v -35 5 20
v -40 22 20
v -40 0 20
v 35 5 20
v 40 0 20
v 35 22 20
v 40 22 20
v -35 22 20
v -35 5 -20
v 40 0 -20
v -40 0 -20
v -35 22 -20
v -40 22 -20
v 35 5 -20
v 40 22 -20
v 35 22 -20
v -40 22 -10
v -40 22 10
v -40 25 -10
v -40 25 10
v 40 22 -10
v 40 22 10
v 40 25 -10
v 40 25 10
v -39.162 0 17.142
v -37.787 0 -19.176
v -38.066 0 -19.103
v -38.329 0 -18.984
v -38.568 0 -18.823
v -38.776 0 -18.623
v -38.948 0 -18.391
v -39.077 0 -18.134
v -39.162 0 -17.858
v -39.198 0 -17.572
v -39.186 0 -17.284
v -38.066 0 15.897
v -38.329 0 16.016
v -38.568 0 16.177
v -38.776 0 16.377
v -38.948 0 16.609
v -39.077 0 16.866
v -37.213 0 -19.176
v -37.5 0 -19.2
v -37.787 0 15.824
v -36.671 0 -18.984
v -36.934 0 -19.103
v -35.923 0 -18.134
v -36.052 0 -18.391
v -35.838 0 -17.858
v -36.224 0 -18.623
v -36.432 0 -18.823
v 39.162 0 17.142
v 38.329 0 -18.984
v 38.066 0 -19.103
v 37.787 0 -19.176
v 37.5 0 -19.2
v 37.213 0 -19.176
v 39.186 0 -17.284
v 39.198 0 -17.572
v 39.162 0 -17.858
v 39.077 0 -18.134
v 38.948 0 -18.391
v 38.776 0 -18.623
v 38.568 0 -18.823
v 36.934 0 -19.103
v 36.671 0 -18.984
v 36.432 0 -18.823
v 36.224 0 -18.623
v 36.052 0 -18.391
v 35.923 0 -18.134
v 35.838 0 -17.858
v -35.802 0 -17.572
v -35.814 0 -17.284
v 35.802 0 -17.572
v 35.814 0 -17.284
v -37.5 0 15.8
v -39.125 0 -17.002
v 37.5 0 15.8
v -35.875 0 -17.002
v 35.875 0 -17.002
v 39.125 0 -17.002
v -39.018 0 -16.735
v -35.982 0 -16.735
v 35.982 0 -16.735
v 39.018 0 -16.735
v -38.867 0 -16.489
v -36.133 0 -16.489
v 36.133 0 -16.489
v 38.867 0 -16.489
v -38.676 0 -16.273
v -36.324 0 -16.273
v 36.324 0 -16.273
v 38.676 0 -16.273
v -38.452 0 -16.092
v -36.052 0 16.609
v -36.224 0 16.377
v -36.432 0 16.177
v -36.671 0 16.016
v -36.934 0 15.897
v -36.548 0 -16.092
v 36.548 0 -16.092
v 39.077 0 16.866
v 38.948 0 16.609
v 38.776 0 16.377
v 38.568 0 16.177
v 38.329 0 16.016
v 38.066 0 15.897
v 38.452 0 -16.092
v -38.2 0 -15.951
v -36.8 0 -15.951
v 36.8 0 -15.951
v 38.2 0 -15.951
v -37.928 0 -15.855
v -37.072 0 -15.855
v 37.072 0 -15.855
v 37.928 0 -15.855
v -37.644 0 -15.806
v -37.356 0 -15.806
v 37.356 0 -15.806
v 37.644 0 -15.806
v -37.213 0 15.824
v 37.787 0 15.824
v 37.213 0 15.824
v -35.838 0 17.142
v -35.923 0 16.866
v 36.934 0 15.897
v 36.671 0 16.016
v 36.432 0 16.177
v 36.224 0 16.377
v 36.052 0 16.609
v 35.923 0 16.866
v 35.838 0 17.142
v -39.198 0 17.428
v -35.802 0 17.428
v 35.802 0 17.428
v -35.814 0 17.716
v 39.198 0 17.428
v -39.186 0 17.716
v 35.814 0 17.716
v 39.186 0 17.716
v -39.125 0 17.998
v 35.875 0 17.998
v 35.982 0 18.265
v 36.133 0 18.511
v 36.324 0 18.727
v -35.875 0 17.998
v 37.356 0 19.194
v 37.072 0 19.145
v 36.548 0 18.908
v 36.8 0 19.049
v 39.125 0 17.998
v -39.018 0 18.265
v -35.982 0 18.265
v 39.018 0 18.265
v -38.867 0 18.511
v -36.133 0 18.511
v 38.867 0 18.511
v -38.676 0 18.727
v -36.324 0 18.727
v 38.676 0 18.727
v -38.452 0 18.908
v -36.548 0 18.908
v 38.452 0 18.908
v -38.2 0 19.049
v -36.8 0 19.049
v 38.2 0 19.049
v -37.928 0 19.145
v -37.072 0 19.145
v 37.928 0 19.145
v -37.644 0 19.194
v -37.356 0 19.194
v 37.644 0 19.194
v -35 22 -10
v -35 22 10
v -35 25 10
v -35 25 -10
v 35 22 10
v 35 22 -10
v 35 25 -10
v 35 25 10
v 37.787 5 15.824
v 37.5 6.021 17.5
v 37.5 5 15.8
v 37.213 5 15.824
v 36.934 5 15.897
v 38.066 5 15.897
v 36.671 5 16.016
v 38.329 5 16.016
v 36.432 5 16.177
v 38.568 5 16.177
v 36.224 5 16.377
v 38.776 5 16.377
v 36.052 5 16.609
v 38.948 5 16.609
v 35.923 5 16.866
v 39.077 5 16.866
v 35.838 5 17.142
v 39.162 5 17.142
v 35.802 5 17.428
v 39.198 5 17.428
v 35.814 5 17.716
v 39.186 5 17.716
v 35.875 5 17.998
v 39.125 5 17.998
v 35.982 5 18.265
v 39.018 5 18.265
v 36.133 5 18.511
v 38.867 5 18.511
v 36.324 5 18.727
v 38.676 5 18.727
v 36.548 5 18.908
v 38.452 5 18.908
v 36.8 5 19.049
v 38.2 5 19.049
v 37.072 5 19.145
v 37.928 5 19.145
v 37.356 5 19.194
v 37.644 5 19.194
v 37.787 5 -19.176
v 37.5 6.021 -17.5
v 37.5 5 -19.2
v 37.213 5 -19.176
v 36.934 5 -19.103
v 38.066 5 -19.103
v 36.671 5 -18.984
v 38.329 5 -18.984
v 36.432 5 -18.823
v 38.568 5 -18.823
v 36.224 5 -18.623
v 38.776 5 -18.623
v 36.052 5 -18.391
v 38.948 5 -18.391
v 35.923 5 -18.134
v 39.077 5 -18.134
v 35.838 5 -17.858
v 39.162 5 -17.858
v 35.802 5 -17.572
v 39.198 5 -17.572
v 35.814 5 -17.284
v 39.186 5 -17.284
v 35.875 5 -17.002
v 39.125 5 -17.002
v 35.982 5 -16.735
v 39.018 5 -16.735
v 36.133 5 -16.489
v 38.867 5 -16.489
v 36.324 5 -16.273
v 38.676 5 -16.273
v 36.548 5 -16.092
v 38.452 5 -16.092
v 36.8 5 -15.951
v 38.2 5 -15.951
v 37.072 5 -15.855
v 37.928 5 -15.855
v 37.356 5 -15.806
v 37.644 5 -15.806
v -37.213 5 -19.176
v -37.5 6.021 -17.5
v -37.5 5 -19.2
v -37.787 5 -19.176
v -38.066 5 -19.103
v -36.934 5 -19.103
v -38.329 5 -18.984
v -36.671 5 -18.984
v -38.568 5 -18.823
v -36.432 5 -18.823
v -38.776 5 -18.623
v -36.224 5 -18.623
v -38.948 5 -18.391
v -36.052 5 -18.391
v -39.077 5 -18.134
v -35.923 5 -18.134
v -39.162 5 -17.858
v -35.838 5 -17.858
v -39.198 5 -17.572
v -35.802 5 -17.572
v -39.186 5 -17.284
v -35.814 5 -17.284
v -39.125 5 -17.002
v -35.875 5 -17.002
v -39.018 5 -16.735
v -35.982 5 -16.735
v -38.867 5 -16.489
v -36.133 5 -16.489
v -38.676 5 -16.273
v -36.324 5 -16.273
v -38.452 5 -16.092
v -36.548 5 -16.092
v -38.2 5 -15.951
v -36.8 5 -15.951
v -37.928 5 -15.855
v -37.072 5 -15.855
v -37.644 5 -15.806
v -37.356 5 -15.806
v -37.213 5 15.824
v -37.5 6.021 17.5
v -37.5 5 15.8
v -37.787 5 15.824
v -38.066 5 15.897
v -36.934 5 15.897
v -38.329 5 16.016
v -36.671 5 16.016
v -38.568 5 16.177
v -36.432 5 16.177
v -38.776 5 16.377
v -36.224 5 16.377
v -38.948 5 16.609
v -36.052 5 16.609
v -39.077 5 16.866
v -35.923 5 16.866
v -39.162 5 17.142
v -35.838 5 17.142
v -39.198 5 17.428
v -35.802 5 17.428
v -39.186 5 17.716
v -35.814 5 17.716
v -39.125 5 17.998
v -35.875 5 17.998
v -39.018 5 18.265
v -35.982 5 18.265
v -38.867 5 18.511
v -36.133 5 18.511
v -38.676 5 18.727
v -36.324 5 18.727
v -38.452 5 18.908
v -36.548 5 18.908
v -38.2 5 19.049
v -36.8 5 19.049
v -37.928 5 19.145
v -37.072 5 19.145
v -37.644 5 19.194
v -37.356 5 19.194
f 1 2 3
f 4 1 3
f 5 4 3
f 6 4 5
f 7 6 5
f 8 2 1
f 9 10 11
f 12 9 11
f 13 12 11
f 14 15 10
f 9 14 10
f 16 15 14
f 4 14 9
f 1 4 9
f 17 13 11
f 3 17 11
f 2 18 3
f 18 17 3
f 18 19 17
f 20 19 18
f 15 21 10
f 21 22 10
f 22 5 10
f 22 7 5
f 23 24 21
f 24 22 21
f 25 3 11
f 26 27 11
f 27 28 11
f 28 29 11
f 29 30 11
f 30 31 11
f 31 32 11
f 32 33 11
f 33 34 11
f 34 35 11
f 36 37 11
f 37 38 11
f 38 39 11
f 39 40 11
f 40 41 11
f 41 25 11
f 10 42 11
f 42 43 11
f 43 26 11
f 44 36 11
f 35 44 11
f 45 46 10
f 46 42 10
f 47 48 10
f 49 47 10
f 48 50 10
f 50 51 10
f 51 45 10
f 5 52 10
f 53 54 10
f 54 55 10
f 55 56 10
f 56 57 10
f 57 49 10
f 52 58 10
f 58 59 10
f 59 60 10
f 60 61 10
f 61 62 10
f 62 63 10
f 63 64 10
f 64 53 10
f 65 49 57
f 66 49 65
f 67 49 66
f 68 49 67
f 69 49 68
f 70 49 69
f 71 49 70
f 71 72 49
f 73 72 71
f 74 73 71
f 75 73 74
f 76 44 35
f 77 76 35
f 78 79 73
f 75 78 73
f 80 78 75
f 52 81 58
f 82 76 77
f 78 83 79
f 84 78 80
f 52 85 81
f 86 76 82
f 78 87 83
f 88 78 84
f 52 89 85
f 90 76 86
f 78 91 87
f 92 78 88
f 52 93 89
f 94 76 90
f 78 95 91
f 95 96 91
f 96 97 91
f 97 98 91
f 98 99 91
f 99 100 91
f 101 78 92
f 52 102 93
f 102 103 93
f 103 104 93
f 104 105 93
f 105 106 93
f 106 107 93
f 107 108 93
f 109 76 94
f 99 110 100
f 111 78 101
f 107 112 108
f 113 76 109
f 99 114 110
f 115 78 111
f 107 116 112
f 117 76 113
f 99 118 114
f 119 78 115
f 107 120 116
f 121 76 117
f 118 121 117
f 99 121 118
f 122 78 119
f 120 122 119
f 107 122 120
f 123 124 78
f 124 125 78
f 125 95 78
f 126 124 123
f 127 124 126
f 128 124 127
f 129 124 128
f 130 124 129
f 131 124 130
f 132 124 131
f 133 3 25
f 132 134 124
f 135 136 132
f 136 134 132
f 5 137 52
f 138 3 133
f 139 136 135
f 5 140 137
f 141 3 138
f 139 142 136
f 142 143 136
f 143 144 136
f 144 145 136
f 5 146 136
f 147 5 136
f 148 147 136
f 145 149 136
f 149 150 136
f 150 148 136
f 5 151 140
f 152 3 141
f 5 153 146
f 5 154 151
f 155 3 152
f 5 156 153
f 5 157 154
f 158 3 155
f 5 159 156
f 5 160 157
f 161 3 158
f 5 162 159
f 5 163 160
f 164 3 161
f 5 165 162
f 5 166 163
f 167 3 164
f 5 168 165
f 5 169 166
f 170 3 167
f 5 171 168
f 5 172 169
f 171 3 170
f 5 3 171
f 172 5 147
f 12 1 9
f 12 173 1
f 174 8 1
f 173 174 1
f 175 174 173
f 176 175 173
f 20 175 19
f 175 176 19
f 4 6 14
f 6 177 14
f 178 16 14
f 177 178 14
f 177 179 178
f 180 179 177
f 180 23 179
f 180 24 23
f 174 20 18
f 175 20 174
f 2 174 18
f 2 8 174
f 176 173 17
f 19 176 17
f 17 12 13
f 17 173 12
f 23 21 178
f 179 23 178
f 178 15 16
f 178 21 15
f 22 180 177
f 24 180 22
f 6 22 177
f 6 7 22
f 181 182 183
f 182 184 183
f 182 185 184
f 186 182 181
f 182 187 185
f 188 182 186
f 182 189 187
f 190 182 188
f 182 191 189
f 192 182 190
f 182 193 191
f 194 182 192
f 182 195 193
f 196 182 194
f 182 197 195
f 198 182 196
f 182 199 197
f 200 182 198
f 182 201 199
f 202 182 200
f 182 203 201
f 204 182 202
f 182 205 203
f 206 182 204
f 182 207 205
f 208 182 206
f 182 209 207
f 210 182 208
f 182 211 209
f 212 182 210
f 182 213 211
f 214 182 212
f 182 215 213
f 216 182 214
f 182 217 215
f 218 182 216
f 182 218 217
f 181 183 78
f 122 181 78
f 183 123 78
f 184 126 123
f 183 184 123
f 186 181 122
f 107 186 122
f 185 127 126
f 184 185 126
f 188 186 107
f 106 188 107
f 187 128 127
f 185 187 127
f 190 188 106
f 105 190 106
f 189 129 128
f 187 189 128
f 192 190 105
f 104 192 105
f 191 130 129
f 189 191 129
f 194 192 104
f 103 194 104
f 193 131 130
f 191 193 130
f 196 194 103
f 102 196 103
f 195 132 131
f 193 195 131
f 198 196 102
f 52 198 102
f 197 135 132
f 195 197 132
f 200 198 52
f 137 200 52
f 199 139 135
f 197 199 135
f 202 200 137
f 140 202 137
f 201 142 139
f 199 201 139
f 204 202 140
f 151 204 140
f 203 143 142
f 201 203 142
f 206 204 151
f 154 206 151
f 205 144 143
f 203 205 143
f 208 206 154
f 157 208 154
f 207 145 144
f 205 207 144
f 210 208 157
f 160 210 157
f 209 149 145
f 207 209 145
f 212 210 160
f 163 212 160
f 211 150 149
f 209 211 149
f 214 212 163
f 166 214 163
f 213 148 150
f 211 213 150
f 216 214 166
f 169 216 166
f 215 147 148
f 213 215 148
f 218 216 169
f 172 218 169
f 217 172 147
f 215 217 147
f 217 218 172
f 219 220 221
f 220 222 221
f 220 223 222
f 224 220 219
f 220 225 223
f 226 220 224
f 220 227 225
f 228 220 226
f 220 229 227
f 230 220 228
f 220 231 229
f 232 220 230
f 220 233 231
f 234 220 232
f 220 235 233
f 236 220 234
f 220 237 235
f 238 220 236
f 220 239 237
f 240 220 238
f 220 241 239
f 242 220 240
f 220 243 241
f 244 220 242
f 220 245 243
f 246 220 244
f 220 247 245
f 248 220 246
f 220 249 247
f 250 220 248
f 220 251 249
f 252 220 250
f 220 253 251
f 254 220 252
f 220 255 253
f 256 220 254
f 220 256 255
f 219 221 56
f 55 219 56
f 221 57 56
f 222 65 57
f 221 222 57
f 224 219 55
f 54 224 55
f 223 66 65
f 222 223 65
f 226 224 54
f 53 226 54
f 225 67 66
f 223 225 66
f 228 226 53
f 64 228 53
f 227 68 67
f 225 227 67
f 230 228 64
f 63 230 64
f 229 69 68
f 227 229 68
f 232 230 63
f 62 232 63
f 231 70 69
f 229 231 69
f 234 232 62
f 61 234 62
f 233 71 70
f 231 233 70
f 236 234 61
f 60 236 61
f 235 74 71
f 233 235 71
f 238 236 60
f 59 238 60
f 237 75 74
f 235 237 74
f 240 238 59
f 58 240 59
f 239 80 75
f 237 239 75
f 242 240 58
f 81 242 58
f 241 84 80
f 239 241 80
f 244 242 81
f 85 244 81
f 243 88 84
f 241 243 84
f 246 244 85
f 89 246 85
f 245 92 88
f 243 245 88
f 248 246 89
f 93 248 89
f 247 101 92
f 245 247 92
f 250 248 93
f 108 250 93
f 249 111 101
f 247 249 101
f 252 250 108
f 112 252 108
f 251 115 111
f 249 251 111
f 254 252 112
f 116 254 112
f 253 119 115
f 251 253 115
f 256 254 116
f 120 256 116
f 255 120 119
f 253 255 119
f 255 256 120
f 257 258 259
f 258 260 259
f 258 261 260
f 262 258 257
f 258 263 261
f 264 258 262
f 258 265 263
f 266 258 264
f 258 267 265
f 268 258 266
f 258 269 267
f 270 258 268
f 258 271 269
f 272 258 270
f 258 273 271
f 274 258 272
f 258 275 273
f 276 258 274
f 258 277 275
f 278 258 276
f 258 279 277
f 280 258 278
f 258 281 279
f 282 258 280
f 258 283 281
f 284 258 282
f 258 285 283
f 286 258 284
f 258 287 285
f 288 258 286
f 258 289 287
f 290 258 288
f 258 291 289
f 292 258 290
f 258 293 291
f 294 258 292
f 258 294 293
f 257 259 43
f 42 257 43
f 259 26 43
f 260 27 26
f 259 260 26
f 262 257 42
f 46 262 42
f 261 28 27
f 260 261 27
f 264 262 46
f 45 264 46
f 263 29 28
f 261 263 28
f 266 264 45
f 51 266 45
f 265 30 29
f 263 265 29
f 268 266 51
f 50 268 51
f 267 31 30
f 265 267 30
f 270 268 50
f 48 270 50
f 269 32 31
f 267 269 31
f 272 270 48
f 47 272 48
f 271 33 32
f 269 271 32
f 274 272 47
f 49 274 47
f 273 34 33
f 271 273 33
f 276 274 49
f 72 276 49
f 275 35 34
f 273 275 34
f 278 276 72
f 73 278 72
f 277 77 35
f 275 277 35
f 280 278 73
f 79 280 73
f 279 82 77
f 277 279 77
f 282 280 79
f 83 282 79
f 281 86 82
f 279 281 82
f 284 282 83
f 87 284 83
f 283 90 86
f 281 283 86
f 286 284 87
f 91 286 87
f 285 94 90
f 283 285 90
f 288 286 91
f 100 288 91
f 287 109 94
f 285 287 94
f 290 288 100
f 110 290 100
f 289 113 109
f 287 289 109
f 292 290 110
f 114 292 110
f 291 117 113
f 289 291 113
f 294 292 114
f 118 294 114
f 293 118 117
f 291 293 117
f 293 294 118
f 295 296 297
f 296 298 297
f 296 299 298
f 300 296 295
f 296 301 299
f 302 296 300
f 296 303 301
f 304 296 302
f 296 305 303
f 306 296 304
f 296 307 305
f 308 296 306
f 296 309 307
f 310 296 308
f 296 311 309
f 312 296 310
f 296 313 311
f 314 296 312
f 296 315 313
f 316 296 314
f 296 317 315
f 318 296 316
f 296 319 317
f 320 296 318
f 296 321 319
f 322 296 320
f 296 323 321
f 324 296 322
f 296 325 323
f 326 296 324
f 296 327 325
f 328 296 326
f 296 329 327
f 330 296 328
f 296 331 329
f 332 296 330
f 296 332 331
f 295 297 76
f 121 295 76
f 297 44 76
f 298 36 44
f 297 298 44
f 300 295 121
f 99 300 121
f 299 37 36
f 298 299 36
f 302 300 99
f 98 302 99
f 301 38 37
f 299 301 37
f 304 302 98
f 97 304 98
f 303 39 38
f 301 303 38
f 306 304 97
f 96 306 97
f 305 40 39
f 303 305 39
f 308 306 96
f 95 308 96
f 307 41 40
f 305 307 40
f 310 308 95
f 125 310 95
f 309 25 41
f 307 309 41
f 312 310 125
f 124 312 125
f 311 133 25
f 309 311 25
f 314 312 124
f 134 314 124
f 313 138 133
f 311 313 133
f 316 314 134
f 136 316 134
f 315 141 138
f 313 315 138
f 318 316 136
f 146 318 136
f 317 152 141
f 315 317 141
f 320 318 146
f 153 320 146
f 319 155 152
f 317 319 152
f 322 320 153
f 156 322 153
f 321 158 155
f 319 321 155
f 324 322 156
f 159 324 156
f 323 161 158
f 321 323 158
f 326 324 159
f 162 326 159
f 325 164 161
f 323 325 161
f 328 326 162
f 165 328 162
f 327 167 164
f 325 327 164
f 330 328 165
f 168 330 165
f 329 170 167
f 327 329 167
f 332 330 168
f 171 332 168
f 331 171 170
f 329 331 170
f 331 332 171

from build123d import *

# Parameters (mm, degrees)
SKETCH1_W                = 80
SKETCH1_H                = 40
BOSS_EXTRUDE1_DEPTH      = 5
SKETCH2_W                = 5
SKETCH2_H                = 40
BOSS_EXTRUDE2_DEPTH      = 20
SKETCH3_W                = 5
SKETCH3_H                = 40
BOSS_EXTRUDE3_DEPTH      = 20
SKETCH4_W                = 5
SKETCH4_H                = 10
CUT_EXTRUDE1_DEPTH       = 3
SKETCH5_W                = 5
SKETCH5_H                = 10
CUT_EXTRUDE2_DEPTH       = 3
M3_CLEARANCE_HOLE1_D     = 3.4
M3_CLEARANCE_HOLE1_DEPTH = 5
M3_CLEARANCE_HOLE1_TIP   = 1.021463052


with BuildPart() as part:
    # Sketch1 → Boss-Extrude1 (new body)
    with BuildSketch(Plane(origin=(0, 0, 0), x_dir=(1, 0, 0), z_dir=(0, 1, 0))):
        Rectangle(SKETCH1_W, SKETCH1_H)
    extrude(amount=BOSS_EXTRUDE1_DEPTH)

    # Sketch2 → Boss-Extrude2 (add)
    with BuildSketch(Plane(origin=(0, 5, 0), x_dir=(1, 0, 0), z_dir=(0, 1, 0))):
        with Locations((-37.5, 0)):
            Rectangle(SKETCH2_W, SKETCH2_H)
    extrude(amount=BOSS_EXTRUDE2_DEPTH)

    # Sketch3 → Boss-Extrude3 (add)
    with BuildSketch(Plane(origin=(0, 5, 0), x_dir=(1, 0, 0), z_dir=(0, 1, 0))):
        with Locations((37.5, 0)):
            Rectangle(SKETCH3_W, SKETCH3_H)
    extrude(amount=BOSS_EXTRUDE3_DEPTH)

    # Sketch4 → Cut-Extrude1 (cut)
    with BuildSketch(Plane(origin=(0, 25, 0), x_dir=(1, 0, 0), z_dir=(0, 1, 0))):
        with Locations((-37.5, 15)):
            Rectangle(SKETCH4_W, SKETCH4_H)
        with Locations((-37.5, -15)):
            Rectangle(SKETCH4_W, SKETCH4_H)
    extrude(amount=-CUT_EXTRUDE1_DEPTH, mode=Mode.SUBTRACT)

    # Sketch5 → Cut-Extrude2 (cut)
    with BuildSketch(Plane(origin=(0, 25, 0), x_dir=(1, 0, 0), z_dir=(0, 1, 0))):
        with Locations((37.5, -15)):
            Rectangle(SKETCH5_W, SKETCH5_H)
        with Locations((37.5, 15)):
            Rectangle(SKETCH5_W, SKETCH5_H)
    extrude(amount=-CUT_EXTRUDE2_DEPTH, mode=Mode.SUBTRACT)

    # M3 Clearance Hole1
    with Locations(Plane(origin=(0, 0, 0), x_dir=(-1, 0, 0), z_dir=(0, -1, 0))):
        with Locations((37.5, -17.5), (37.5, 17.5), (-37.5, 17.5), (-37.5, -17.5)):
            Hole(M3_CLEARANCE_HOLE1_D / 2, depth=M3_CLEARANCE_HOLE1_DEPTH)
            with Locations((0, 0, -(M3_CLEARANCE_HOLE1_DEPTH + M3_CLEARANCE_HOLE1_TIP / 2))):  # 118° drill point
                Cone(0, M3_CLEARANCE_HOLE1_D / 2, M3_CLEARANCE_HOLE1_TIP, mode=Mode.SUBTRACT)


solid = part.part
